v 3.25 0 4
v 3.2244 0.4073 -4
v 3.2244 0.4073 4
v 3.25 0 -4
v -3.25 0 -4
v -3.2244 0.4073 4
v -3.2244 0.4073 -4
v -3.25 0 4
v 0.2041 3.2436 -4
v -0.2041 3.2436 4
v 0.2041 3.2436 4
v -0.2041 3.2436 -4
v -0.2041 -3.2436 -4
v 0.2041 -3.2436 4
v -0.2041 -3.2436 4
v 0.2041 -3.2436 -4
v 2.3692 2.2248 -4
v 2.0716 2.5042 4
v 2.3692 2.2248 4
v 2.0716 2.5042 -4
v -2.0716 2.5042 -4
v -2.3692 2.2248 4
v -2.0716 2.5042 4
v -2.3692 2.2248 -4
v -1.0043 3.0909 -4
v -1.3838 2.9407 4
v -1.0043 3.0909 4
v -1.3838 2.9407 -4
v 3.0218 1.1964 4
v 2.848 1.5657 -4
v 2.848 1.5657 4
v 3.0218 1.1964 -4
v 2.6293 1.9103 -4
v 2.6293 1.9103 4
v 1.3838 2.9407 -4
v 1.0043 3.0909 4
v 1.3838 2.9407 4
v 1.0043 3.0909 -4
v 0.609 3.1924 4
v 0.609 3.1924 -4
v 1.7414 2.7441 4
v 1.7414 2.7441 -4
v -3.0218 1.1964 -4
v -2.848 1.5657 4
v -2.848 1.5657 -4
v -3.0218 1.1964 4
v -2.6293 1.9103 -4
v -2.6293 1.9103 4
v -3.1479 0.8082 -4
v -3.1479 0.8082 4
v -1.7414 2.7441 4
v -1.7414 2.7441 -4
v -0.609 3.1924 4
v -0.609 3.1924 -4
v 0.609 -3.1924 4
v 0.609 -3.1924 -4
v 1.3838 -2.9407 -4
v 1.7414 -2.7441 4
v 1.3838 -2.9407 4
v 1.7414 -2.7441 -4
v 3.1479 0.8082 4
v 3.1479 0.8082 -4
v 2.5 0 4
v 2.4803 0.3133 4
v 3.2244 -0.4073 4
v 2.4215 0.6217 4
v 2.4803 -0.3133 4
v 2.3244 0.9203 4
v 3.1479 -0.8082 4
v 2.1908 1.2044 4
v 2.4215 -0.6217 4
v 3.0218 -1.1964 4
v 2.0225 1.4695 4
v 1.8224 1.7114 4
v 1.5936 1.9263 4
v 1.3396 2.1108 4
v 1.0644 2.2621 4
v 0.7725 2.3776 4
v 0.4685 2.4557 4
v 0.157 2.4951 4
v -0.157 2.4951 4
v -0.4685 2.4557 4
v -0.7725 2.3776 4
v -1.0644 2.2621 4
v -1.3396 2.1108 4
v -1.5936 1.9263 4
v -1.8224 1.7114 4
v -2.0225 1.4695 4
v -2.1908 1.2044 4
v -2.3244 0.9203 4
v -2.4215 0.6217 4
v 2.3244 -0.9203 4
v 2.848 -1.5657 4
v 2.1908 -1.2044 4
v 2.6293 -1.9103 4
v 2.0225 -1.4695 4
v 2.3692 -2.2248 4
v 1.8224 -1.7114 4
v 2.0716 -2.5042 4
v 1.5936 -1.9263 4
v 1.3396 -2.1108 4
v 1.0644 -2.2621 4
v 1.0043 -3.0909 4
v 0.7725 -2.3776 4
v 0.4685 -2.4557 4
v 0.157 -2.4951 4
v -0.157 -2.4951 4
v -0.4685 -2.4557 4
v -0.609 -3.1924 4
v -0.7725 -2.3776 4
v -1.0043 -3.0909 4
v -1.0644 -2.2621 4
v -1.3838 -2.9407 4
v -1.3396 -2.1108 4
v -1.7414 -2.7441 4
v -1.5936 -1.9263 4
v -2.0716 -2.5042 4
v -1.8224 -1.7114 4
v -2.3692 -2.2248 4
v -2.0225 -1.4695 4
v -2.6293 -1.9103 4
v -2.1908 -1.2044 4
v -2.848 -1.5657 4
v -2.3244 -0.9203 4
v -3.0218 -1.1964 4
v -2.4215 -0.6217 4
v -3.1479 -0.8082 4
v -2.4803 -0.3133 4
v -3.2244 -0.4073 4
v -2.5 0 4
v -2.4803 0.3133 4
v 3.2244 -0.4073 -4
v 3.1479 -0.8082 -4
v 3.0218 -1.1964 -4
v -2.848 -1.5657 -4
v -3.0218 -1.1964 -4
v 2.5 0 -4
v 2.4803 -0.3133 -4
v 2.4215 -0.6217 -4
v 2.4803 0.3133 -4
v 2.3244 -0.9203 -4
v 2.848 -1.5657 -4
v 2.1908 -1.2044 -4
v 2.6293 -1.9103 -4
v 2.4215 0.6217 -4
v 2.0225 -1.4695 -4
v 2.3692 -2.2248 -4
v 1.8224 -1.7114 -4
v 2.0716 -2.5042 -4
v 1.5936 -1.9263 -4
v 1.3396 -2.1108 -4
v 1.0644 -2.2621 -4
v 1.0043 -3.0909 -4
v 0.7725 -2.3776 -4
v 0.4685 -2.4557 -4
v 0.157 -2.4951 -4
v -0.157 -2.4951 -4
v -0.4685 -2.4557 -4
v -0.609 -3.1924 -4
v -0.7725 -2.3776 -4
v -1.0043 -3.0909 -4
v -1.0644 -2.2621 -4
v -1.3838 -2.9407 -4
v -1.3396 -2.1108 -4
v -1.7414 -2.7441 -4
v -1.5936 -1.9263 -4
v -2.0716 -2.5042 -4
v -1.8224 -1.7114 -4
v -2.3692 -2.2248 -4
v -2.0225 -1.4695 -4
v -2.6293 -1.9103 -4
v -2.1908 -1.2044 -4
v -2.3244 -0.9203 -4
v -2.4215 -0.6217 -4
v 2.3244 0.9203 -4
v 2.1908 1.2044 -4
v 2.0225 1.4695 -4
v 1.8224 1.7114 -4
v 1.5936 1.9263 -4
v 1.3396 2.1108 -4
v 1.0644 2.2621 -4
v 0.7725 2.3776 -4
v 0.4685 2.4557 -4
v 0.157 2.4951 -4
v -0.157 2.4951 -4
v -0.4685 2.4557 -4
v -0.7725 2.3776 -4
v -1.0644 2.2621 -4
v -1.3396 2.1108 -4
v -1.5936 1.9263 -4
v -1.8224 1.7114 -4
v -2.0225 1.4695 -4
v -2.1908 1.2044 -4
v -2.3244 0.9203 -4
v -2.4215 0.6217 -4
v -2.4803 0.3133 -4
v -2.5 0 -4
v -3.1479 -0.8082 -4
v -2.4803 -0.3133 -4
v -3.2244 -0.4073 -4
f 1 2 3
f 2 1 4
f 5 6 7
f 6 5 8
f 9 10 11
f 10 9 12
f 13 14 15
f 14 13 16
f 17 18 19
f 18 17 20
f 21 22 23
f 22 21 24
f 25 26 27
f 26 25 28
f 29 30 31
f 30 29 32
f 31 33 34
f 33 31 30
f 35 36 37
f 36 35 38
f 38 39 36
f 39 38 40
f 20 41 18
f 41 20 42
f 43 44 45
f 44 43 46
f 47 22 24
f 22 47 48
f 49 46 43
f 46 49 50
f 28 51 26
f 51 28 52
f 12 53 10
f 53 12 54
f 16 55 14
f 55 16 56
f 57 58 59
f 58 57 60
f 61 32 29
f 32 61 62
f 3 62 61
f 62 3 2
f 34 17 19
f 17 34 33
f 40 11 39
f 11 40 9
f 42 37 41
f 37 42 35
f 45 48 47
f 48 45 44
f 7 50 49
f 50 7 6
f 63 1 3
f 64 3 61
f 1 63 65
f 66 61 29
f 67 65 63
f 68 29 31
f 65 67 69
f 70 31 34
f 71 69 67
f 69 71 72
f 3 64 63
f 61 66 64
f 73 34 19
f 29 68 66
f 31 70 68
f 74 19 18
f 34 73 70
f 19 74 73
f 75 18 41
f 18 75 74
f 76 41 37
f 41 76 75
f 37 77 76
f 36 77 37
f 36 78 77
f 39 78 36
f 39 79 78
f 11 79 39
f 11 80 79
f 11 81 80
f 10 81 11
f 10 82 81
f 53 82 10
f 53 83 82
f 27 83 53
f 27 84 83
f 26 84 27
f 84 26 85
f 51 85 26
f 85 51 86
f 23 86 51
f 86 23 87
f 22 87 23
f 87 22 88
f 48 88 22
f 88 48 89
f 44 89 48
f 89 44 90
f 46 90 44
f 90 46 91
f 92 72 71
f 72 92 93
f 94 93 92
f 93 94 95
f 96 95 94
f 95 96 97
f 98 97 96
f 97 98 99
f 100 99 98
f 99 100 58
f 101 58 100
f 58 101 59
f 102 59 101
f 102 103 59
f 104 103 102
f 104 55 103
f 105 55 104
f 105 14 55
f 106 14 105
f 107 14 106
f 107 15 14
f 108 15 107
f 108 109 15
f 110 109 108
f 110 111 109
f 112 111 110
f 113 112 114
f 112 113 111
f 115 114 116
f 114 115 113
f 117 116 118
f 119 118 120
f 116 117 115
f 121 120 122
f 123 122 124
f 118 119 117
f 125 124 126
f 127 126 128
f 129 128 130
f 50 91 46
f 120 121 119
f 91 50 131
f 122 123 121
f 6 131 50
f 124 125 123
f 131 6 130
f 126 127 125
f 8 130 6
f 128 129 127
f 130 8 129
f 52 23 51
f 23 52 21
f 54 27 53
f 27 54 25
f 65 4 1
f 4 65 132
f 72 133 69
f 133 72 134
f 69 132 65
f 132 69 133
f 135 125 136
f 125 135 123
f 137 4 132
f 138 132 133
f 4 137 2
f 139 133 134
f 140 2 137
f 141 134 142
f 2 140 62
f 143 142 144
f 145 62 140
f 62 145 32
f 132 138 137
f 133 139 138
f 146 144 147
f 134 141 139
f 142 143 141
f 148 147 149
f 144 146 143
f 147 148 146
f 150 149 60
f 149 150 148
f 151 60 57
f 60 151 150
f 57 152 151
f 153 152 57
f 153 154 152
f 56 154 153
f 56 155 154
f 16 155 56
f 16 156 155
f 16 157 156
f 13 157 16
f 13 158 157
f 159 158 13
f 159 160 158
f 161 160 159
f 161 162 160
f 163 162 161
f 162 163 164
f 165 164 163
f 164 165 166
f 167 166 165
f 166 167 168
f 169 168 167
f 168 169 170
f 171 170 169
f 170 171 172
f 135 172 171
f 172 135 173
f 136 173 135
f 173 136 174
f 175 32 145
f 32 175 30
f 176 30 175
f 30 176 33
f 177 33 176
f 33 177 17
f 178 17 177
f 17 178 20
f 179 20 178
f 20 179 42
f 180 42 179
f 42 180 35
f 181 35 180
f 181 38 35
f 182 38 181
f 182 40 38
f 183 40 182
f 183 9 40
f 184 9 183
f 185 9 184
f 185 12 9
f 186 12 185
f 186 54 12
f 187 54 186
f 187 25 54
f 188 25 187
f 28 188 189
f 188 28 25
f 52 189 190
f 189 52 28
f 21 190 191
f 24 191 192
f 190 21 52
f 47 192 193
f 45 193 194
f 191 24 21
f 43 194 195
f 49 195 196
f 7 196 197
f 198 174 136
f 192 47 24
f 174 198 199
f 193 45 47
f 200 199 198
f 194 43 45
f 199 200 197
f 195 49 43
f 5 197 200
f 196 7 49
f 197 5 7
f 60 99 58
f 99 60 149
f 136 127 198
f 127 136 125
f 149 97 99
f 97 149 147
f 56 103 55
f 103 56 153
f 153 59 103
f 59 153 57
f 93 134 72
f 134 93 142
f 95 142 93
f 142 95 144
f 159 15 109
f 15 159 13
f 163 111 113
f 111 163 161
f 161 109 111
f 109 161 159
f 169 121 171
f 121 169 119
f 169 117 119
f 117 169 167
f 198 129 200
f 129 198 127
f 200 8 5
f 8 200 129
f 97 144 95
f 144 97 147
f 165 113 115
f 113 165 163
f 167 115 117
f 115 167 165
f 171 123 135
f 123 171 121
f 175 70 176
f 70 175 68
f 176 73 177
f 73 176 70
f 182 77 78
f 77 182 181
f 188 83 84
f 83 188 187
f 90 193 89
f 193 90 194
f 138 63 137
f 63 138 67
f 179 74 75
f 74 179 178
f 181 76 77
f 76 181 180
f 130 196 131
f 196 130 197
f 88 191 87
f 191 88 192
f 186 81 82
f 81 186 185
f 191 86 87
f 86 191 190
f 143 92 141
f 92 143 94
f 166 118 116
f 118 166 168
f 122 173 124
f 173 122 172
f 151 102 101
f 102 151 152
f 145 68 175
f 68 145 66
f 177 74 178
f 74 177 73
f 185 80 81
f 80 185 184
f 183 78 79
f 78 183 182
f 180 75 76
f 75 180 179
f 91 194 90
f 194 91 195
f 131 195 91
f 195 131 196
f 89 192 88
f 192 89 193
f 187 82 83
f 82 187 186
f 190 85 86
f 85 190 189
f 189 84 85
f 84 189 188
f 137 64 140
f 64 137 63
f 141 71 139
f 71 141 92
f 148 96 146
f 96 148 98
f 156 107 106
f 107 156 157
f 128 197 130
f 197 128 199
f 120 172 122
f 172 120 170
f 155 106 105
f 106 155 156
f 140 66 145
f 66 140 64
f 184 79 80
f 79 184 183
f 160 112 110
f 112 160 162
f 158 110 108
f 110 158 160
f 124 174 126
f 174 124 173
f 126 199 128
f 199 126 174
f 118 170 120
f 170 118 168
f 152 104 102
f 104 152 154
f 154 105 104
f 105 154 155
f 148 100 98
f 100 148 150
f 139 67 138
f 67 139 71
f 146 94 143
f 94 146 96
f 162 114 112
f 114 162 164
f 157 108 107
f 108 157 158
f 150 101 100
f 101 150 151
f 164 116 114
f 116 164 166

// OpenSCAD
$fn = 50;


difference() {
	union() {
		translate(v = [0, 0, -4.0000000000]) {
			cylinder(h = 8, r = 3.2500000000);
		}
	}
	union() {
		translate(v = [0, 0, -100.0000000000]) {
			cylinder(h = 200, r = 2.5000000000);
		}
	}
}
